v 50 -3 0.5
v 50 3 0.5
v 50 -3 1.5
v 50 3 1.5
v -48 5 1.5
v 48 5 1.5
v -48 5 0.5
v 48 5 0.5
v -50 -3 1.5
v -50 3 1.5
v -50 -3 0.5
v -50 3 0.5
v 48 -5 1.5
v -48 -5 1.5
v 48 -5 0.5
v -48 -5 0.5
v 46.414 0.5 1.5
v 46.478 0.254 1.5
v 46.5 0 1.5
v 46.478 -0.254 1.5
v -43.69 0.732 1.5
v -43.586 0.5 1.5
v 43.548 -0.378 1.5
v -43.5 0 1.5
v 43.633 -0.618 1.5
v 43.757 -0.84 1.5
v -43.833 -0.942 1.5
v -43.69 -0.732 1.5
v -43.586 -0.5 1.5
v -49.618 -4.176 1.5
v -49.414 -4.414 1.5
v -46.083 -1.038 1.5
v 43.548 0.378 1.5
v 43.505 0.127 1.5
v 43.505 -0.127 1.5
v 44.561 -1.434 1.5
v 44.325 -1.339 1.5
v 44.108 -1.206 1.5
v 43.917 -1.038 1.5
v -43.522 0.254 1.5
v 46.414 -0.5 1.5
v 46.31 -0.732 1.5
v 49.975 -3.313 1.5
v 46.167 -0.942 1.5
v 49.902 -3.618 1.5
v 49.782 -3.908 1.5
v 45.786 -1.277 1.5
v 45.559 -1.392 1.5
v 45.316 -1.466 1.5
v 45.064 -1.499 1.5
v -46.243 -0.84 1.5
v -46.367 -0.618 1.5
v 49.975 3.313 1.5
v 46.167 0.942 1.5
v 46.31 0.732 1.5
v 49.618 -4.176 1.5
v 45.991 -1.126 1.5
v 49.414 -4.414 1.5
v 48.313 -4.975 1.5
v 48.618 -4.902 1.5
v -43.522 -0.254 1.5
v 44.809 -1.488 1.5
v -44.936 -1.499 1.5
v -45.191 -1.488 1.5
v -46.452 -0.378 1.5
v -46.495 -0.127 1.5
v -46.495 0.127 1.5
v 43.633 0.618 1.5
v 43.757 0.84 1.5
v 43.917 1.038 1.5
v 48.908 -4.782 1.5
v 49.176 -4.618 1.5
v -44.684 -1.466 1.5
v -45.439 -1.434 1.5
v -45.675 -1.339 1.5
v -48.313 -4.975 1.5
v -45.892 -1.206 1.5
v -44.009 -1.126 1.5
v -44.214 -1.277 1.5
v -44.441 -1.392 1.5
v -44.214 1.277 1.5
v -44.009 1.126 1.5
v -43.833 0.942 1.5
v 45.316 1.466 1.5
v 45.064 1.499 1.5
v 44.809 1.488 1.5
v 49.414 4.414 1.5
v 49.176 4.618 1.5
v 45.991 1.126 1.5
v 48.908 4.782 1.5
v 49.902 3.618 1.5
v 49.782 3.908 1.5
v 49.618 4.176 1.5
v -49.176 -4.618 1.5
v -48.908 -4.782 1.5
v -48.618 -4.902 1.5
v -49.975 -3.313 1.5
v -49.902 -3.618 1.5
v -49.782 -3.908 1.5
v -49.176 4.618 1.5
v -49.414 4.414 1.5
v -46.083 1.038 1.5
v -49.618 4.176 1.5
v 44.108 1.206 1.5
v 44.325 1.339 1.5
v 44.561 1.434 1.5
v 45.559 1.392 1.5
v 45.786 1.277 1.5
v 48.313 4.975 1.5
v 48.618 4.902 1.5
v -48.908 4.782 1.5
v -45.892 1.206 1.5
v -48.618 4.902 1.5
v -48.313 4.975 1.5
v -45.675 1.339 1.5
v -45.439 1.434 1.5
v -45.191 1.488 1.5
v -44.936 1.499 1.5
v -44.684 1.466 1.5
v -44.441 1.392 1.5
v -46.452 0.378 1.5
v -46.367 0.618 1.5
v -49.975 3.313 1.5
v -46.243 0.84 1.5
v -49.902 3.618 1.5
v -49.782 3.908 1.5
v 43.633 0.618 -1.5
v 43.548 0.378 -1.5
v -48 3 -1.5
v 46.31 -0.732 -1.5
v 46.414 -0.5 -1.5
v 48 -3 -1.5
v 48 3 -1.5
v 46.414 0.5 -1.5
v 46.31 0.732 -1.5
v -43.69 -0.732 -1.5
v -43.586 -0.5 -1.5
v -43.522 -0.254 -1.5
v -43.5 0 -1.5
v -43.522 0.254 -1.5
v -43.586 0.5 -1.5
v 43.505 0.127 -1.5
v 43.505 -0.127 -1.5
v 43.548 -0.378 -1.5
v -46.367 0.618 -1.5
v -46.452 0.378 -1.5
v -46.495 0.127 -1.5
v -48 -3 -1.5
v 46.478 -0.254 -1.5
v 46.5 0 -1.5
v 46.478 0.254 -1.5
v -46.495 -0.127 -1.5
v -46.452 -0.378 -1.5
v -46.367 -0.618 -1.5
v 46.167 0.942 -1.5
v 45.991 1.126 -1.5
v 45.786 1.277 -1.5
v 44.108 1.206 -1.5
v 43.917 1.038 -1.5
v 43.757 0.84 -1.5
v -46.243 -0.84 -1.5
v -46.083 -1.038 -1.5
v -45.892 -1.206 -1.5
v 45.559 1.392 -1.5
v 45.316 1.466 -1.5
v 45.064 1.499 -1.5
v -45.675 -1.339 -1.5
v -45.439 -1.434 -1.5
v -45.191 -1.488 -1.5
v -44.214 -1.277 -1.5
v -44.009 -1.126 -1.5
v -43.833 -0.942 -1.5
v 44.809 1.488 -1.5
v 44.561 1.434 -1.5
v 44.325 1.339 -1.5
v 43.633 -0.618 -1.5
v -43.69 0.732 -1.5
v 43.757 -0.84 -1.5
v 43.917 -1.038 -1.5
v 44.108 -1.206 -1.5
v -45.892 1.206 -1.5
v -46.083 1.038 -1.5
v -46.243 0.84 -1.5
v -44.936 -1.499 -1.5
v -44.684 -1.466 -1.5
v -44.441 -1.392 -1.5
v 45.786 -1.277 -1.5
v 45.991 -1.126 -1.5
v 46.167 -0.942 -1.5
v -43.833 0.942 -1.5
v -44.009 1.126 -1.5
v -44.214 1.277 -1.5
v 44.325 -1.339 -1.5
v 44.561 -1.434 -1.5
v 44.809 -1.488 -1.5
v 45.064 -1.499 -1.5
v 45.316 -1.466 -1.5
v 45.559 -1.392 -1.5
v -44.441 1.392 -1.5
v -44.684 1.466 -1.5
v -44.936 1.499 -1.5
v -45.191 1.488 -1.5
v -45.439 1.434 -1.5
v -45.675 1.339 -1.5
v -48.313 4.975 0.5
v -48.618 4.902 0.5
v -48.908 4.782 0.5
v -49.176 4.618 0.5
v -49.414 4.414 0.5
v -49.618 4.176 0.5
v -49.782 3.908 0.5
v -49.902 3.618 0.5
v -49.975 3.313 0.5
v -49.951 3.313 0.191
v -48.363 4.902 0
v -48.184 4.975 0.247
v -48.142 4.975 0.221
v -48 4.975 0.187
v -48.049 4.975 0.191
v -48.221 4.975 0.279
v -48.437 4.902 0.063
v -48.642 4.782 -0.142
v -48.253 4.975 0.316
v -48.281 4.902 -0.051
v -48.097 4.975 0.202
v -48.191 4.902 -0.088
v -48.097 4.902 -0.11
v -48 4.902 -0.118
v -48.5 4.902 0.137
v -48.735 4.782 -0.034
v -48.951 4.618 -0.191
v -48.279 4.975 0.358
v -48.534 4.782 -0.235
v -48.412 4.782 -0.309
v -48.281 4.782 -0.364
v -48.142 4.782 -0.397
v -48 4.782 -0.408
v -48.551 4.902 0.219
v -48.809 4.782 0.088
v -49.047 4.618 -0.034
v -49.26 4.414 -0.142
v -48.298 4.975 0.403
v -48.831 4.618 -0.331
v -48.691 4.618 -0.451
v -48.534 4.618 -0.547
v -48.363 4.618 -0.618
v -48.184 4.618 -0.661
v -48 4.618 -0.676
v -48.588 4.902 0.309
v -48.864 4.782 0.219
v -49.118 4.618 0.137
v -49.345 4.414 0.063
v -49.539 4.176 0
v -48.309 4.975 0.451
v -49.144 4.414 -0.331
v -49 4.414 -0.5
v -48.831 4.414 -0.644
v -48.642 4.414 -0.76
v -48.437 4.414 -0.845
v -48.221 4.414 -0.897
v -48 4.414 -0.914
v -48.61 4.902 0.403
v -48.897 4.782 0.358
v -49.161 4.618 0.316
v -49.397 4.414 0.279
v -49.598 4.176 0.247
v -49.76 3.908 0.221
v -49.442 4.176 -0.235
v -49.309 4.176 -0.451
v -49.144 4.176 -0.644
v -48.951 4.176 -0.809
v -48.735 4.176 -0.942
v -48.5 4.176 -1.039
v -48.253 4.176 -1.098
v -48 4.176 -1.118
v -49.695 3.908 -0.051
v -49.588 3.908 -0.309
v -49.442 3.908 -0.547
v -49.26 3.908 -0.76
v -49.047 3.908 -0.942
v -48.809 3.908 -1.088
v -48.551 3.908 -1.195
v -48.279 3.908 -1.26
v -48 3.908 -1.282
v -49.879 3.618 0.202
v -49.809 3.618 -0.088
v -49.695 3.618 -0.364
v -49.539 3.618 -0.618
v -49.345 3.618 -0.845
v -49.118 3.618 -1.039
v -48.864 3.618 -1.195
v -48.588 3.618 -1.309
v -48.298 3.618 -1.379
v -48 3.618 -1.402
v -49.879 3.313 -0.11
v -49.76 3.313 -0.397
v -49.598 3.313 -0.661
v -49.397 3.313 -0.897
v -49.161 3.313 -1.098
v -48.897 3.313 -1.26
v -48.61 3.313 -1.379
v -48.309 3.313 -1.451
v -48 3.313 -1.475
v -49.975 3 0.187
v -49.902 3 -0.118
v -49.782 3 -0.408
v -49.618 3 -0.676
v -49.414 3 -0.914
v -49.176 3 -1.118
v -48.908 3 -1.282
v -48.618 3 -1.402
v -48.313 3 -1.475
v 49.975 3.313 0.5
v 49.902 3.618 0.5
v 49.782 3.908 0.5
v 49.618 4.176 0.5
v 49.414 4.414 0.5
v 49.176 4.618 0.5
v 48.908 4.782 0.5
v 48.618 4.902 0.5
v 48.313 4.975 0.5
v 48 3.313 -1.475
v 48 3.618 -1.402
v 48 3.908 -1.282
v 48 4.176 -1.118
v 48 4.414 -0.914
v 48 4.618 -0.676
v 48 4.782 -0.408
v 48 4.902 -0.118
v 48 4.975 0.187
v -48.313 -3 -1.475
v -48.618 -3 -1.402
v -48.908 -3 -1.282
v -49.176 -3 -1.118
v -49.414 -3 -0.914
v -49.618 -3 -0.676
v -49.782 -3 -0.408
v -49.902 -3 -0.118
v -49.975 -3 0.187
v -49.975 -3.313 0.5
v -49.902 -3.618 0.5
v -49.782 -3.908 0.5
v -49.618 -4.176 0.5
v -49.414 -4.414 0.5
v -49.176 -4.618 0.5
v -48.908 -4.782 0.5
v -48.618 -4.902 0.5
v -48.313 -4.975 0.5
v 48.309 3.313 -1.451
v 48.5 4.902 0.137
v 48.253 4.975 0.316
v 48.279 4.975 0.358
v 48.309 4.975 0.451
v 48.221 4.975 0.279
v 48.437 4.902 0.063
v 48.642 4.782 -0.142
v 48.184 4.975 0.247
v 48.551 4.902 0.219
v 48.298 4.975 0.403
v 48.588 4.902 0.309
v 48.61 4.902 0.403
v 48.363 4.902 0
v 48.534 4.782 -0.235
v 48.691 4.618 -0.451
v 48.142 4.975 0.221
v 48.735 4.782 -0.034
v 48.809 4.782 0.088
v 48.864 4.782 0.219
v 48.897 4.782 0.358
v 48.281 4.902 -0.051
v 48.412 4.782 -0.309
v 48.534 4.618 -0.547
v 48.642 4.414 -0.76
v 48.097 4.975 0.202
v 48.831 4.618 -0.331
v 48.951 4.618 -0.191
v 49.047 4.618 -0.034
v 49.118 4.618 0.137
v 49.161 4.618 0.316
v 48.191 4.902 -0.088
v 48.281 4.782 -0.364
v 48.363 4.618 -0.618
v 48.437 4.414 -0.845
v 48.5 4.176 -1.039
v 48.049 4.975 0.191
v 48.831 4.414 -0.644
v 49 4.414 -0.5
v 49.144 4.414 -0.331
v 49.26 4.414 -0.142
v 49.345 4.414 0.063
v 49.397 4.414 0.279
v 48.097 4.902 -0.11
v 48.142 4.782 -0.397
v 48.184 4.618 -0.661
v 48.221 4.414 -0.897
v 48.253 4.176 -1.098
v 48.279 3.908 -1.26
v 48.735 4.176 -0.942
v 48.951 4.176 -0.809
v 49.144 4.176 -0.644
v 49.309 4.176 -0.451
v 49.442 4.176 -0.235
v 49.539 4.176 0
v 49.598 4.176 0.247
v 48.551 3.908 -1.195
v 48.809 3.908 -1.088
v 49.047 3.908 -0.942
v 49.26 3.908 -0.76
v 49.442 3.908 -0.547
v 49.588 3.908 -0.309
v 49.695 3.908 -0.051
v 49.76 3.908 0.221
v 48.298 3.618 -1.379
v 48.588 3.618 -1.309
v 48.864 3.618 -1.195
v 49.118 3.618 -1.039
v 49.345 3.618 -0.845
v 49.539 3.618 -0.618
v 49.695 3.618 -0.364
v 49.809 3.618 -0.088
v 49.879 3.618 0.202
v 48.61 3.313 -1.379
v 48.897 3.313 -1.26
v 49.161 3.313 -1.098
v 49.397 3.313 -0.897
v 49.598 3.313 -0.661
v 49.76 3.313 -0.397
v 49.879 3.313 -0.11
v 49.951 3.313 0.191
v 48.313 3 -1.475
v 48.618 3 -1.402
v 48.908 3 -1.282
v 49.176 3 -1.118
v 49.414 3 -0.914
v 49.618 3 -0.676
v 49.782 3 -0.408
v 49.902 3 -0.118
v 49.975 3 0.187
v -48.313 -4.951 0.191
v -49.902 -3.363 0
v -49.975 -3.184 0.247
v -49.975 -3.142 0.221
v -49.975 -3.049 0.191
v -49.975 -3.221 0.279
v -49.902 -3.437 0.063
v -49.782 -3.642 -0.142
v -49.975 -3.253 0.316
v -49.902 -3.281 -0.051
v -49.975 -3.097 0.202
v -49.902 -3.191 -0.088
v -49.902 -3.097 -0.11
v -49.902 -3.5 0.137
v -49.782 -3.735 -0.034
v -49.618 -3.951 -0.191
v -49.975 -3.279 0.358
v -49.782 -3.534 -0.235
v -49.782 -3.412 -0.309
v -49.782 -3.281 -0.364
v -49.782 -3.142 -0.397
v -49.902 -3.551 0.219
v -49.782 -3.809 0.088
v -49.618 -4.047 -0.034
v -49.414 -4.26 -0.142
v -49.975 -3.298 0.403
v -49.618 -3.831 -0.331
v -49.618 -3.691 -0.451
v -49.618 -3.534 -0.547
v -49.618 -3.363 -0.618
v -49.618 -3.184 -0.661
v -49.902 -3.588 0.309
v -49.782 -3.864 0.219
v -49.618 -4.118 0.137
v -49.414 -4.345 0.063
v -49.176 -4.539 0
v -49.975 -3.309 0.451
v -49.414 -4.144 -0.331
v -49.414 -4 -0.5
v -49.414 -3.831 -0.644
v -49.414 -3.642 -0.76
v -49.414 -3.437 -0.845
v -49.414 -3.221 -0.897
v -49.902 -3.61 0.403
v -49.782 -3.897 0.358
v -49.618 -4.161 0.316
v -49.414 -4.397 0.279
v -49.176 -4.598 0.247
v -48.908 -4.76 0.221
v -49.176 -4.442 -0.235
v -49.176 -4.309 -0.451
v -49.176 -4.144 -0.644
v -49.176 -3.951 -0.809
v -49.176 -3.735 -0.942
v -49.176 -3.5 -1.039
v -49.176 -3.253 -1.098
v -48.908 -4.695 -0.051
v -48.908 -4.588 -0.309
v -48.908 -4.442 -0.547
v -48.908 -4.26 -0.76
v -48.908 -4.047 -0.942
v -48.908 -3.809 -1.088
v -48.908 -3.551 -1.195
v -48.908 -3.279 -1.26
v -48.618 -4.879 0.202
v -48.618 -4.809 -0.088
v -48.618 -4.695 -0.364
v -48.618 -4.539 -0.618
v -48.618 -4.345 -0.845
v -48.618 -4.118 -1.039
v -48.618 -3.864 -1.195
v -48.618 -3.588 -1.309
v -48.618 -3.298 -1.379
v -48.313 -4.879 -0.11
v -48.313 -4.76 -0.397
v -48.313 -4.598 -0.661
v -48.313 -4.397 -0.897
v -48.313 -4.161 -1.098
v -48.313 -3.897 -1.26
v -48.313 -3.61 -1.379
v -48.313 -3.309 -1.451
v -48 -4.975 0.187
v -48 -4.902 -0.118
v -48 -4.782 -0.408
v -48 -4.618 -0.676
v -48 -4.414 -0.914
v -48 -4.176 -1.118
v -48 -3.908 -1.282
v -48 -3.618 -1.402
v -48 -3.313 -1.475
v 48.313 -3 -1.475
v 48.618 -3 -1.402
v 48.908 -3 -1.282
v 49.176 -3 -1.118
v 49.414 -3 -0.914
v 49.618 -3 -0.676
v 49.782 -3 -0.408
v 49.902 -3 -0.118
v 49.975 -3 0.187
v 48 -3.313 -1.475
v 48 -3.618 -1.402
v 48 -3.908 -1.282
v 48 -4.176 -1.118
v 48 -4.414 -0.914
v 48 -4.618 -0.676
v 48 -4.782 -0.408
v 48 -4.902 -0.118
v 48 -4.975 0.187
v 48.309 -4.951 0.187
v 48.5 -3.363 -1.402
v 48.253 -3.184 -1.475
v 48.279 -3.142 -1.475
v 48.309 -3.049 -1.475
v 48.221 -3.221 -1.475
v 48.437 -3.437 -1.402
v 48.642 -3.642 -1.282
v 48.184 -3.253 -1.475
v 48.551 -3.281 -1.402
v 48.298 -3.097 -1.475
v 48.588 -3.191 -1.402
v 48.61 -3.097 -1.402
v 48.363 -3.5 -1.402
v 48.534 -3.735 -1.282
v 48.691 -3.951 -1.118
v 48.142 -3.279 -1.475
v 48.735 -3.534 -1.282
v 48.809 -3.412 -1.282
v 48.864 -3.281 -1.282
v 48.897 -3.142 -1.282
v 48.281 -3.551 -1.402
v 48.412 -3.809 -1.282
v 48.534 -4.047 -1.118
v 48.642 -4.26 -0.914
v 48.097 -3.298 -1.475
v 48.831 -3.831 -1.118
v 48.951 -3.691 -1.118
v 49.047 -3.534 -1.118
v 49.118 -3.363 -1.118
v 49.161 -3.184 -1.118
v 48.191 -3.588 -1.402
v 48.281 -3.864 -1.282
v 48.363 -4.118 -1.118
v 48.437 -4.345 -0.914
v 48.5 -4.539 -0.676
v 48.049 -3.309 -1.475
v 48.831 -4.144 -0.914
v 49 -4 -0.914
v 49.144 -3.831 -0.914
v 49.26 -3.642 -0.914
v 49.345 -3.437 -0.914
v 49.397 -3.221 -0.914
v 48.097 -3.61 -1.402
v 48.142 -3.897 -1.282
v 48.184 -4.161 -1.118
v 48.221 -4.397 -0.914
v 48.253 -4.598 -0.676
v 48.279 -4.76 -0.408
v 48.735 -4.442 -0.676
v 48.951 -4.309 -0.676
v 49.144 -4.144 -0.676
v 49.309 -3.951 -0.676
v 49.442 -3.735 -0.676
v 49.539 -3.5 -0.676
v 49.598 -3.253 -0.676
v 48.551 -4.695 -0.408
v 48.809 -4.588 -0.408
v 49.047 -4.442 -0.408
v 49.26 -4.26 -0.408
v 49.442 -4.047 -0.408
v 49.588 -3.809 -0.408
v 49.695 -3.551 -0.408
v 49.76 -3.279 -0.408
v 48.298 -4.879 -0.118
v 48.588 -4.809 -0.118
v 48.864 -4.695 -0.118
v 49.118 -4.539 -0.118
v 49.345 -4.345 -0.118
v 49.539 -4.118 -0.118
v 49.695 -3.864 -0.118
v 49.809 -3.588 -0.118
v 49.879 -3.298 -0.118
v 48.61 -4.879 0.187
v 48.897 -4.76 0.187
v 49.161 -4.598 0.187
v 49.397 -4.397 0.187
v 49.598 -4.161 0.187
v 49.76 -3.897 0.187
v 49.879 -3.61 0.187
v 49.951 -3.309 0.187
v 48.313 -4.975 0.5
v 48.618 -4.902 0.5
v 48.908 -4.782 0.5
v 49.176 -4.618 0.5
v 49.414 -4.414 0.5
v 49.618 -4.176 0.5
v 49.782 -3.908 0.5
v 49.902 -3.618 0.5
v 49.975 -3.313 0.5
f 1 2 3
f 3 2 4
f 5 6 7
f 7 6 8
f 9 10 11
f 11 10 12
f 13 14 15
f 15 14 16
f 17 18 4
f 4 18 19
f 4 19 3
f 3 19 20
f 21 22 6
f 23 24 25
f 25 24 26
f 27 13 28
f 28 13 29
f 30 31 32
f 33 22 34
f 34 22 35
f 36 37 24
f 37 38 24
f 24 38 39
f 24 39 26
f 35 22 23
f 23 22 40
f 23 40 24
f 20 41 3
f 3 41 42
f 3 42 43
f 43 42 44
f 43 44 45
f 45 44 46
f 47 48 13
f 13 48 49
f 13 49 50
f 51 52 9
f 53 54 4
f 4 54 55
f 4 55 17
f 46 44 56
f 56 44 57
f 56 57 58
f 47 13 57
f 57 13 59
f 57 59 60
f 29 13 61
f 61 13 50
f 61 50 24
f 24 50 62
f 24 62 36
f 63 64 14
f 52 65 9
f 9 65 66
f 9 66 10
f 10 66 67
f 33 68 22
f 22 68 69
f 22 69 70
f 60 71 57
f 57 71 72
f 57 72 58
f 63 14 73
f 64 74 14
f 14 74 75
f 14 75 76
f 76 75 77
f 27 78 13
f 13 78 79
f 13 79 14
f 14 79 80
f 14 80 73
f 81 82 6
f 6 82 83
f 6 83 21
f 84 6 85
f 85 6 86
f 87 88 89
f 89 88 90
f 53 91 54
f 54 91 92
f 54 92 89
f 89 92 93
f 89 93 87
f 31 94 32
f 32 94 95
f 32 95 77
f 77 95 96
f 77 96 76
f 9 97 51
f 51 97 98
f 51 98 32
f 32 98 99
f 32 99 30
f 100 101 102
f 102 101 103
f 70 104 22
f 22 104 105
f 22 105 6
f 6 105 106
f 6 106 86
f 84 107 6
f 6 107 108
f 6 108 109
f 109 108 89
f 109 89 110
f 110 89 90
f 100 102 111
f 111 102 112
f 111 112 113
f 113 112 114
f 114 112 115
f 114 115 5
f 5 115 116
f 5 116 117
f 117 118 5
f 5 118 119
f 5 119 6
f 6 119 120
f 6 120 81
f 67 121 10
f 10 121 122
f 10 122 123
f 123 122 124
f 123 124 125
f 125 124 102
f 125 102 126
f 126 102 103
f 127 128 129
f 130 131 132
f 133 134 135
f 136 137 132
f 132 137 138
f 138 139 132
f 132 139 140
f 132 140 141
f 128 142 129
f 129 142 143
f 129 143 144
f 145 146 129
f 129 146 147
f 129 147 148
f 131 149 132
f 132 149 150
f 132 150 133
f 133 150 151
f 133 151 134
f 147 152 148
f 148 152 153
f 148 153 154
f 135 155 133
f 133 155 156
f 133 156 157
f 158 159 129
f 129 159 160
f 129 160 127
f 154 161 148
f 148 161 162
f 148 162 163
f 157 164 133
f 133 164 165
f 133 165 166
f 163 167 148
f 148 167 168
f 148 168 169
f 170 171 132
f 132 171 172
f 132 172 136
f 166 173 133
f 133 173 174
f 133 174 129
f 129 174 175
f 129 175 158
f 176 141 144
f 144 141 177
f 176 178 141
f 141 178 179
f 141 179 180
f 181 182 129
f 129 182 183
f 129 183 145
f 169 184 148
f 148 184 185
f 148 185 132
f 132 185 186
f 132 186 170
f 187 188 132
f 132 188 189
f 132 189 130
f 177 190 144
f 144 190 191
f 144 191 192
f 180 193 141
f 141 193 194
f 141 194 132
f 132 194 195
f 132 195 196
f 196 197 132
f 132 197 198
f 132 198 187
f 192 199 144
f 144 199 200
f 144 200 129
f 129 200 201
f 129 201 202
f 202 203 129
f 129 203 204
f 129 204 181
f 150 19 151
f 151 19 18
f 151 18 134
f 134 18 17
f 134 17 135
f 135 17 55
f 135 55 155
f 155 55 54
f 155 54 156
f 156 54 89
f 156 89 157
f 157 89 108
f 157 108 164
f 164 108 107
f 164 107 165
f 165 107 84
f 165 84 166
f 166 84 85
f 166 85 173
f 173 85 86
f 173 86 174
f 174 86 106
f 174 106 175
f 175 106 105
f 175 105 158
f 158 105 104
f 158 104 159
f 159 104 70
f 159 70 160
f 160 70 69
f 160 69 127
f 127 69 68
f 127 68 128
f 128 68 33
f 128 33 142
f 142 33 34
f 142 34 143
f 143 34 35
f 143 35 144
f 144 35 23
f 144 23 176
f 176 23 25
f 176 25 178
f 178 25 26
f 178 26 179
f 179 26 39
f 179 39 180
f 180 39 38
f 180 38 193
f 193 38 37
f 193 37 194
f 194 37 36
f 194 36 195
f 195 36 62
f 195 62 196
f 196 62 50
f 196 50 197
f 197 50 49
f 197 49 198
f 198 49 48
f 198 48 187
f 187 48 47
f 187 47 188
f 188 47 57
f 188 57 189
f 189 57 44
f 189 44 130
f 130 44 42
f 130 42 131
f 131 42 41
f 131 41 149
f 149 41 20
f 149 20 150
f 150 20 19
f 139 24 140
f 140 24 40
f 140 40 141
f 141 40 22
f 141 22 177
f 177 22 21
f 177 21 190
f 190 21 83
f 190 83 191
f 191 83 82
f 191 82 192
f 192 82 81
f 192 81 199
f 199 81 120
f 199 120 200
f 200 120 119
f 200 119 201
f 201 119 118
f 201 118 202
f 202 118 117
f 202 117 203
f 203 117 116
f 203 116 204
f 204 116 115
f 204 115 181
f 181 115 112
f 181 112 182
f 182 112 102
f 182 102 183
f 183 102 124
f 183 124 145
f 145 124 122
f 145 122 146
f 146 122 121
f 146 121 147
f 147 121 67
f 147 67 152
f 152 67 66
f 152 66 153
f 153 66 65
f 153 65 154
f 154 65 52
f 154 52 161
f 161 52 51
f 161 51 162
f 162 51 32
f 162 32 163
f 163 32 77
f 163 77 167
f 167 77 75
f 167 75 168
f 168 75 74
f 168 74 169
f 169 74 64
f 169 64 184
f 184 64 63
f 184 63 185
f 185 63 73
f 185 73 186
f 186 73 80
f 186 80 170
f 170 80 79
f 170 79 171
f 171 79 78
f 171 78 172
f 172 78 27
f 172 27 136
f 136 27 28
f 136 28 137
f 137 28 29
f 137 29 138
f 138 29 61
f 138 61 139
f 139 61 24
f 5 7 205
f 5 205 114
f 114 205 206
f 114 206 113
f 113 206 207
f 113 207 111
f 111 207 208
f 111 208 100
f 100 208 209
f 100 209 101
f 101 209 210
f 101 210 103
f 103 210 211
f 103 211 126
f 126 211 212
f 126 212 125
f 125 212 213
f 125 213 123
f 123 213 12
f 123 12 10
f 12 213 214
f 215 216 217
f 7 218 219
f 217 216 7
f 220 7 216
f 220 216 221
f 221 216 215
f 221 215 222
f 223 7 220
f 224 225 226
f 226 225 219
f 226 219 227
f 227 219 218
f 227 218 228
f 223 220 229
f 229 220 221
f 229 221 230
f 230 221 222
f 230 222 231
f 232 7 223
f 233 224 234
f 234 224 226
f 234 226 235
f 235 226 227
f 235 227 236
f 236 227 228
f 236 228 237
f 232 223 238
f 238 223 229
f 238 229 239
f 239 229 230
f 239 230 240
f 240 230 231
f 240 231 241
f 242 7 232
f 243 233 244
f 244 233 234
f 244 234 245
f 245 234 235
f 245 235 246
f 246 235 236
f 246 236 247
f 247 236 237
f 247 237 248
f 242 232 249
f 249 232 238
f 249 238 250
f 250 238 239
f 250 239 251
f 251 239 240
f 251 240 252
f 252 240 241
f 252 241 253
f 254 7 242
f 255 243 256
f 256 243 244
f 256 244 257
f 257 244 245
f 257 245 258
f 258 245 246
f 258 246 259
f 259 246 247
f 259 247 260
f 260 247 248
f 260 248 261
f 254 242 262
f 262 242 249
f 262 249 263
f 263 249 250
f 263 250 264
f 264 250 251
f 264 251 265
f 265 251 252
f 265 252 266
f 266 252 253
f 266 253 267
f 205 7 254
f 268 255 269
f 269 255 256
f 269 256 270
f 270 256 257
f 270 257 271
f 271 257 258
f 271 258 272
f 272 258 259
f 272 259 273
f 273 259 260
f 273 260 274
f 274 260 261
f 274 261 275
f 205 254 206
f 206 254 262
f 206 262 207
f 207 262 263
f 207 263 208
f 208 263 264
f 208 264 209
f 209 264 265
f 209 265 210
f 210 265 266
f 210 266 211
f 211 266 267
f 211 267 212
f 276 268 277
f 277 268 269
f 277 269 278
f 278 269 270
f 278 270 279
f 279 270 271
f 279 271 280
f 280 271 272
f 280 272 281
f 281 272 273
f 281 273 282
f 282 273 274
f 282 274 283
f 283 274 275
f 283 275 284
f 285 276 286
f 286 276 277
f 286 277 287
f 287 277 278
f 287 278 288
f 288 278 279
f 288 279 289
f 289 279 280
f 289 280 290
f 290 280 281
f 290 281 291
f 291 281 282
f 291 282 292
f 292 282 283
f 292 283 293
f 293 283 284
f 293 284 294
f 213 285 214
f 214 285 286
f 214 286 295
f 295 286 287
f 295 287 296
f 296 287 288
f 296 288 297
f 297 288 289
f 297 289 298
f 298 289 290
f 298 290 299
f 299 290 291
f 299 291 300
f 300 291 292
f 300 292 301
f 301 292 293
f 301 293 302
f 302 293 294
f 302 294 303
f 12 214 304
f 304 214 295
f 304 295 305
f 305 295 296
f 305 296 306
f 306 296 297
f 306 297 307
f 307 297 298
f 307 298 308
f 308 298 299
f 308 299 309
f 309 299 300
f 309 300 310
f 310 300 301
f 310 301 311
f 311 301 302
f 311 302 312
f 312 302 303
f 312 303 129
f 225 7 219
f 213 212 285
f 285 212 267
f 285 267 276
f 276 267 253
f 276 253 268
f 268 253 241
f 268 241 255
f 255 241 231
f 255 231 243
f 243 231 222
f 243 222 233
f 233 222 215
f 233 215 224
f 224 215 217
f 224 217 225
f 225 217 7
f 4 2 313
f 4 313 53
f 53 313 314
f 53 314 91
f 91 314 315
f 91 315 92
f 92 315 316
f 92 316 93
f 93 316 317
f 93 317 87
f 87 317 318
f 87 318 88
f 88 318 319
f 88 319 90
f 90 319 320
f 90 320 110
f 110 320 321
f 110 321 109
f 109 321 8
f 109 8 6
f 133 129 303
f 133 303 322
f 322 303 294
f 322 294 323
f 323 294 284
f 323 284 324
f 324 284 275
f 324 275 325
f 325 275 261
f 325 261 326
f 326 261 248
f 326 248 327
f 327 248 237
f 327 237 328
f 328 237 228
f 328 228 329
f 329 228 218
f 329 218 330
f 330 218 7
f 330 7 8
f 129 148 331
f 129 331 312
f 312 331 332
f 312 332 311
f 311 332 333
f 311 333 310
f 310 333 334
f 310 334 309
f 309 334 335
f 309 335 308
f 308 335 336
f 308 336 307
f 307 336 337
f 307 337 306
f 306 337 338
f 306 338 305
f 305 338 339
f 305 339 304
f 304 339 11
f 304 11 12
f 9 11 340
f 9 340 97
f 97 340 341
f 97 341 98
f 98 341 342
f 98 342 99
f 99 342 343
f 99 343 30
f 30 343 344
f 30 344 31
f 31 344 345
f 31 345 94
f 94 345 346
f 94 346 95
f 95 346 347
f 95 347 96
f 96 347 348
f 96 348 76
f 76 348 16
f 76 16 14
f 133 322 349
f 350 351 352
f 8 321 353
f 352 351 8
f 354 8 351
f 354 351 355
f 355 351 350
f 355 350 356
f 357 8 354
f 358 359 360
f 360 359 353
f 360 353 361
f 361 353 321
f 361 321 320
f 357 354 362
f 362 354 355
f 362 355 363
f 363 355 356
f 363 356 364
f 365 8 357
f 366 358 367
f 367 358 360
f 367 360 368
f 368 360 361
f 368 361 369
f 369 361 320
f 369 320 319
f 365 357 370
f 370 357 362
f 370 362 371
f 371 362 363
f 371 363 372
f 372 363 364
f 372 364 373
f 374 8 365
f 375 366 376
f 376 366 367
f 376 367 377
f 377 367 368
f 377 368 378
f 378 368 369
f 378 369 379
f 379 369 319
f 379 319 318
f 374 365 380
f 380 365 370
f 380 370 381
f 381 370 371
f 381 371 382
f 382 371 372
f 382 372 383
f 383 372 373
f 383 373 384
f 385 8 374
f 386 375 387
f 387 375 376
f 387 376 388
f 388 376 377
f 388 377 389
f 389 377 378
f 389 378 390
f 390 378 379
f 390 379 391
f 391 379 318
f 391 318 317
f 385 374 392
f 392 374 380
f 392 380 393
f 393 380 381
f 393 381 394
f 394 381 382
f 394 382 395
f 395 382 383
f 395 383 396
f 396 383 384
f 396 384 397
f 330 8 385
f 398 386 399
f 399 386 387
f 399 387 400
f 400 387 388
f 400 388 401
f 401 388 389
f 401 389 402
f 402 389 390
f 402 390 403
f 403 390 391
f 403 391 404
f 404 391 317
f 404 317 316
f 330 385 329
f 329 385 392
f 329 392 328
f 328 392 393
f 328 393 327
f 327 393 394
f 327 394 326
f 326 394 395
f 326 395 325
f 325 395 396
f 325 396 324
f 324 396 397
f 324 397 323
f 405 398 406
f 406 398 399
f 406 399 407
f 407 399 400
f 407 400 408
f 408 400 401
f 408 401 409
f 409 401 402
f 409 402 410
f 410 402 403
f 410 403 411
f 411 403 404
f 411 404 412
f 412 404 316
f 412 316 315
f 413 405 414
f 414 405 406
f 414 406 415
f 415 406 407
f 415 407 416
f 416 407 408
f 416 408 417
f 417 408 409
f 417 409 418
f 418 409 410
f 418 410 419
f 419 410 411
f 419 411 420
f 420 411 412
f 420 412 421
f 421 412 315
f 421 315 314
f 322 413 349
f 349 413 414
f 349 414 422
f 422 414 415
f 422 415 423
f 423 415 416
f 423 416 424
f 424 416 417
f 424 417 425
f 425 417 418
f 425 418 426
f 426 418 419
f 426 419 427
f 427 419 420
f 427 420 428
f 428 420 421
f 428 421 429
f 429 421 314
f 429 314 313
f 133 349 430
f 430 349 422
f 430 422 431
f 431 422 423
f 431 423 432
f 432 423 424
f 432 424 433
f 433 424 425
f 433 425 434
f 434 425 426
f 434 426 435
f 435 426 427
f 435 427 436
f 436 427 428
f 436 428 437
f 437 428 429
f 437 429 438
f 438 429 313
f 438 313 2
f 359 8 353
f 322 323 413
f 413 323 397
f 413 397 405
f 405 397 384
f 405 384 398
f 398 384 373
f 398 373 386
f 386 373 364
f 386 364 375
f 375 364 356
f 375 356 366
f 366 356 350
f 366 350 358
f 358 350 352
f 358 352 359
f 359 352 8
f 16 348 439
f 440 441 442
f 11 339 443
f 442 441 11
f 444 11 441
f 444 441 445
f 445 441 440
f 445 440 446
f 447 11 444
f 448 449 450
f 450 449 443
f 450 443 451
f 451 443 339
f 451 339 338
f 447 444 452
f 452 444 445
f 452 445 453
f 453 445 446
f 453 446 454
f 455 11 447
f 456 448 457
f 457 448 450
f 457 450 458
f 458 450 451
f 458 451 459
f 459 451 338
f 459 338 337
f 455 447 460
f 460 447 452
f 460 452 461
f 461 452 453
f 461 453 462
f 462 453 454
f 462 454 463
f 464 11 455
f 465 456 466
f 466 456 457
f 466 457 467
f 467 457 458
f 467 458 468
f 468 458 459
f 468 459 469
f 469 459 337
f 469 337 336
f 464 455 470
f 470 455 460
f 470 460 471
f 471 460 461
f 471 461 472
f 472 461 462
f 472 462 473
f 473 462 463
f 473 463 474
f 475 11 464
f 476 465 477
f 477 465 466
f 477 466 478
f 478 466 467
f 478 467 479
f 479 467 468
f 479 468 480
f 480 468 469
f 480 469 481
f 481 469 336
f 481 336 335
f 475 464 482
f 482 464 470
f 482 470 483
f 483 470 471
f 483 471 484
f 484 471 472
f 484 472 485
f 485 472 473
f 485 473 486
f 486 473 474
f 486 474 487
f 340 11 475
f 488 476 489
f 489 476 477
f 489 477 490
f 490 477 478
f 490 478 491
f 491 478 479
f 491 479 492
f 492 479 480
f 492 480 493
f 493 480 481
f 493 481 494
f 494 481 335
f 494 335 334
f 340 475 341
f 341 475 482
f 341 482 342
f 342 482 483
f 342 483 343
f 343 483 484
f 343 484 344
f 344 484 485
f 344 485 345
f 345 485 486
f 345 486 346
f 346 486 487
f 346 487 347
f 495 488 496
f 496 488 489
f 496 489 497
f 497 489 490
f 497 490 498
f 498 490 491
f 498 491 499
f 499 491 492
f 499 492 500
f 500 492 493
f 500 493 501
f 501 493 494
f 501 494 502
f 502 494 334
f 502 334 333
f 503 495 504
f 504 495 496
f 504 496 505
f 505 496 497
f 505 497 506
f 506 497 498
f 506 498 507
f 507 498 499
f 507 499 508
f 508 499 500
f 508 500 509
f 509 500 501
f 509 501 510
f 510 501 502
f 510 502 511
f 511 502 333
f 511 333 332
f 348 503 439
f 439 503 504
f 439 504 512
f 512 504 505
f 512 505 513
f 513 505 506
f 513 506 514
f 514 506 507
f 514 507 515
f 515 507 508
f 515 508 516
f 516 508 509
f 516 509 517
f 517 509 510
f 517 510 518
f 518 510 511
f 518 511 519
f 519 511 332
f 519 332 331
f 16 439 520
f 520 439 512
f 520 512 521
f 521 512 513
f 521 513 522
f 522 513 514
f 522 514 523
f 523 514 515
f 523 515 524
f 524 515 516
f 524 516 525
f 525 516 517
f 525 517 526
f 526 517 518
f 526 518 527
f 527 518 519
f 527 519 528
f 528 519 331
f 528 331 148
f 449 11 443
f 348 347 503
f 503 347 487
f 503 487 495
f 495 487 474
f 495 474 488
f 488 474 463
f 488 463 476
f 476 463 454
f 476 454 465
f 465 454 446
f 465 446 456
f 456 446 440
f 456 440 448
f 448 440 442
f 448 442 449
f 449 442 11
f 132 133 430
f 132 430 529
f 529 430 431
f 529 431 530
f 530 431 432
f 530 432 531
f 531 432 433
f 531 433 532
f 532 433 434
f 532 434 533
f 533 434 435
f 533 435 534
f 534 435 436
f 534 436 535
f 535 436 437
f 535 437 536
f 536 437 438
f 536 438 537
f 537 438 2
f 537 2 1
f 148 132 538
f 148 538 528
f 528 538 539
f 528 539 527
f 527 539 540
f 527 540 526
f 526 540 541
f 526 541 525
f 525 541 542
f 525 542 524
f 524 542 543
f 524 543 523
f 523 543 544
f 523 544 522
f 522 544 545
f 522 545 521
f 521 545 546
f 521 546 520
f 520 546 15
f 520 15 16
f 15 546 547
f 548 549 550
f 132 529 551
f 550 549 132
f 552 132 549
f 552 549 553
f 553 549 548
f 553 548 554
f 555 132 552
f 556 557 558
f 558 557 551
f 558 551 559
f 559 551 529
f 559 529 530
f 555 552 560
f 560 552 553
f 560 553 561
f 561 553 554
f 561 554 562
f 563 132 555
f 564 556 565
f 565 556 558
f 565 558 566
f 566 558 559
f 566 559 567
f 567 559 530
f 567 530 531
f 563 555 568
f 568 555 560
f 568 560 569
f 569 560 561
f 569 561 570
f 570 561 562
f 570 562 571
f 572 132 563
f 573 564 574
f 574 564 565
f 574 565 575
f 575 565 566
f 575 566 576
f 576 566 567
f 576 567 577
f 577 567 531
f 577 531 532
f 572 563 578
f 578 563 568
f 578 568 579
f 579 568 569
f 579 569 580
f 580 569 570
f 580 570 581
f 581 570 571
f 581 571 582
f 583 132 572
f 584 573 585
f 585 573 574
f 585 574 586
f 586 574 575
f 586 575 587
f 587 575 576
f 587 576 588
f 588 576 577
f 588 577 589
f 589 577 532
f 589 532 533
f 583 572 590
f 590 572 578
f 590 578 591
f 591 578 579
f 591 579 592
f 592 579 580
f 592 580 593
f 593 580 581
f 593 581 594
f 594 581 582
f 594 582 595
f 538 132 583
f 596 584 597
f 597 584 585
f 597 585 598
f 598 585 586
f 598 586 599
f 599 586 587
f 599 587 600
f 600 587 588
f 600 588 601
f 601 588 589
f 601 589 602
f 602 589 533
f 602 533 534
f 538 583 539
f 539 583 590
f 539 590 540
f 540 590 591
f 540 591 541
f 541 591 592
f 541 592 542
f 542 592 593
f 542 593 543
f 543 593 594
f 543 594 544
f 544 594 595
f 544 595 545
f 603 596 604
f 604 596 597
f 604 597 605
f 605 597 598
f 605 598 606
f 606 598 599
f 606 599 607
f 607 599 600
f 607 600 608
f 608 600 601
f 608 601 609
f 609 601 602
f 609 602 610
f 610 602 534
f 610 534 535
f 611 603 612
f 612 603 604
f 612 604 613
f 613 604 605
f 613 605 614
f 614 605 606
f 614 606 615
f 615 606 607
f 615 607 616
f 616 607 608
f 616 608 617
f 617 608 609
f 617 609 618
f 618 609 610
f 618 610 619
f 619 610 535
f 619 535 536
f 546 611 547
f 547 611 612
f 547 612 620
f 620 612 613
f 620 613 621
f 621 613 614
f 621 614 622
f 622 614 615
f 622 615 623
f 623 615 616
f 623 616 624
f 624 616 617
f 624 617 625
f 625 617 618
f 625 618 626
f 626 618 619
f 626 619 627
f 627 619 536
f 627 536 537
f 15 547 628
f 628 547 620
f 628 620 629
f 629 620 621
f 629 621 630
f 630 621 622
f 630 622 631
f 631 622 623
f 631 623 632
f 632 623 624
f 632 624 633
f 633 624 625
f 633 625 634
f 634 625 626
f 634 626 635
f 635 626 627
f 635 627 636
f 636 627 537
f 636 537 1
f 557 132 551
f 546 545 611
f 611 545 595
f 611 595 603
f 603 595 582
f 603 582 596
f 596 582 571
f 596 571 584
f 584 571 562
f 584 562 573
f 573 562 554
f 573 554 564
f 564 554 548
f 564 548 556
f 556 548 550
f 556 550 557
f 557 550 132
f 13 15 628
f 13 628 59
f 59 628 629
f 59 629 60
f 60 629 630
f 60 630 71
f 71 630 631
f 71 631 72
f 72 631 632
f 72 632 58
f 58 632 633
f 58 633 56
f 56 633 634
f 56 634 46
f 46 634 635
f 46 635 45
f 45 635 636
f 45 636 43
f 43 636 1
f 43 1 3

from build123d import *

# Parameters (mm, degrees)
SKETCH_1_W          = 100
SKETCH_1_H          = 10
EXTRUDE_1_DEPTH     = 1.5
SKETCH_2_R          = 1.5
CUT_EXTRUDE_1_DEPTH = 10
FILLET_1_R          = 2


with BuildPart() as part:
    # 草图1 → 凸台-拉伸1 (new, symmetric)
    with BuildSketch(Plane.XY):
        Rectangle(SKETCH_1_W, SKETCH_1_H)
    extrude(amount=EXTRUDE_1_DEPTH, both=True)

    # 草图2 → 切除-拉伸1 (cut)
    with BuildSketch(Plane.XY.offset(1.5)):
        with Locations((-45, 0)):
            Circle(SKETCH_2_R)
        with Locations((45, 0)):
            Circle(SKETCH_2_R)
    extrude(amount=-CUT_EXTRUDE_1_DEPTH, mode=Mode.SUBTRACT)

    # 圆角1
    fillet_1_edges = [part.edges().sort_by_distance(p)[0] for p in [
        (0, -5, -1.5),
        (-50, 0, -1.5),
        (0, 5, -1.5),
        (50, 0, -1.5),
        (50, -5, 0),
        (-50, -5, 0),
        (-50, 5, 0),
        (50, 5, 0),
    ]]
    fillet(fillet_1_edges, radius=FILLET_1_R)


solid = part.part
